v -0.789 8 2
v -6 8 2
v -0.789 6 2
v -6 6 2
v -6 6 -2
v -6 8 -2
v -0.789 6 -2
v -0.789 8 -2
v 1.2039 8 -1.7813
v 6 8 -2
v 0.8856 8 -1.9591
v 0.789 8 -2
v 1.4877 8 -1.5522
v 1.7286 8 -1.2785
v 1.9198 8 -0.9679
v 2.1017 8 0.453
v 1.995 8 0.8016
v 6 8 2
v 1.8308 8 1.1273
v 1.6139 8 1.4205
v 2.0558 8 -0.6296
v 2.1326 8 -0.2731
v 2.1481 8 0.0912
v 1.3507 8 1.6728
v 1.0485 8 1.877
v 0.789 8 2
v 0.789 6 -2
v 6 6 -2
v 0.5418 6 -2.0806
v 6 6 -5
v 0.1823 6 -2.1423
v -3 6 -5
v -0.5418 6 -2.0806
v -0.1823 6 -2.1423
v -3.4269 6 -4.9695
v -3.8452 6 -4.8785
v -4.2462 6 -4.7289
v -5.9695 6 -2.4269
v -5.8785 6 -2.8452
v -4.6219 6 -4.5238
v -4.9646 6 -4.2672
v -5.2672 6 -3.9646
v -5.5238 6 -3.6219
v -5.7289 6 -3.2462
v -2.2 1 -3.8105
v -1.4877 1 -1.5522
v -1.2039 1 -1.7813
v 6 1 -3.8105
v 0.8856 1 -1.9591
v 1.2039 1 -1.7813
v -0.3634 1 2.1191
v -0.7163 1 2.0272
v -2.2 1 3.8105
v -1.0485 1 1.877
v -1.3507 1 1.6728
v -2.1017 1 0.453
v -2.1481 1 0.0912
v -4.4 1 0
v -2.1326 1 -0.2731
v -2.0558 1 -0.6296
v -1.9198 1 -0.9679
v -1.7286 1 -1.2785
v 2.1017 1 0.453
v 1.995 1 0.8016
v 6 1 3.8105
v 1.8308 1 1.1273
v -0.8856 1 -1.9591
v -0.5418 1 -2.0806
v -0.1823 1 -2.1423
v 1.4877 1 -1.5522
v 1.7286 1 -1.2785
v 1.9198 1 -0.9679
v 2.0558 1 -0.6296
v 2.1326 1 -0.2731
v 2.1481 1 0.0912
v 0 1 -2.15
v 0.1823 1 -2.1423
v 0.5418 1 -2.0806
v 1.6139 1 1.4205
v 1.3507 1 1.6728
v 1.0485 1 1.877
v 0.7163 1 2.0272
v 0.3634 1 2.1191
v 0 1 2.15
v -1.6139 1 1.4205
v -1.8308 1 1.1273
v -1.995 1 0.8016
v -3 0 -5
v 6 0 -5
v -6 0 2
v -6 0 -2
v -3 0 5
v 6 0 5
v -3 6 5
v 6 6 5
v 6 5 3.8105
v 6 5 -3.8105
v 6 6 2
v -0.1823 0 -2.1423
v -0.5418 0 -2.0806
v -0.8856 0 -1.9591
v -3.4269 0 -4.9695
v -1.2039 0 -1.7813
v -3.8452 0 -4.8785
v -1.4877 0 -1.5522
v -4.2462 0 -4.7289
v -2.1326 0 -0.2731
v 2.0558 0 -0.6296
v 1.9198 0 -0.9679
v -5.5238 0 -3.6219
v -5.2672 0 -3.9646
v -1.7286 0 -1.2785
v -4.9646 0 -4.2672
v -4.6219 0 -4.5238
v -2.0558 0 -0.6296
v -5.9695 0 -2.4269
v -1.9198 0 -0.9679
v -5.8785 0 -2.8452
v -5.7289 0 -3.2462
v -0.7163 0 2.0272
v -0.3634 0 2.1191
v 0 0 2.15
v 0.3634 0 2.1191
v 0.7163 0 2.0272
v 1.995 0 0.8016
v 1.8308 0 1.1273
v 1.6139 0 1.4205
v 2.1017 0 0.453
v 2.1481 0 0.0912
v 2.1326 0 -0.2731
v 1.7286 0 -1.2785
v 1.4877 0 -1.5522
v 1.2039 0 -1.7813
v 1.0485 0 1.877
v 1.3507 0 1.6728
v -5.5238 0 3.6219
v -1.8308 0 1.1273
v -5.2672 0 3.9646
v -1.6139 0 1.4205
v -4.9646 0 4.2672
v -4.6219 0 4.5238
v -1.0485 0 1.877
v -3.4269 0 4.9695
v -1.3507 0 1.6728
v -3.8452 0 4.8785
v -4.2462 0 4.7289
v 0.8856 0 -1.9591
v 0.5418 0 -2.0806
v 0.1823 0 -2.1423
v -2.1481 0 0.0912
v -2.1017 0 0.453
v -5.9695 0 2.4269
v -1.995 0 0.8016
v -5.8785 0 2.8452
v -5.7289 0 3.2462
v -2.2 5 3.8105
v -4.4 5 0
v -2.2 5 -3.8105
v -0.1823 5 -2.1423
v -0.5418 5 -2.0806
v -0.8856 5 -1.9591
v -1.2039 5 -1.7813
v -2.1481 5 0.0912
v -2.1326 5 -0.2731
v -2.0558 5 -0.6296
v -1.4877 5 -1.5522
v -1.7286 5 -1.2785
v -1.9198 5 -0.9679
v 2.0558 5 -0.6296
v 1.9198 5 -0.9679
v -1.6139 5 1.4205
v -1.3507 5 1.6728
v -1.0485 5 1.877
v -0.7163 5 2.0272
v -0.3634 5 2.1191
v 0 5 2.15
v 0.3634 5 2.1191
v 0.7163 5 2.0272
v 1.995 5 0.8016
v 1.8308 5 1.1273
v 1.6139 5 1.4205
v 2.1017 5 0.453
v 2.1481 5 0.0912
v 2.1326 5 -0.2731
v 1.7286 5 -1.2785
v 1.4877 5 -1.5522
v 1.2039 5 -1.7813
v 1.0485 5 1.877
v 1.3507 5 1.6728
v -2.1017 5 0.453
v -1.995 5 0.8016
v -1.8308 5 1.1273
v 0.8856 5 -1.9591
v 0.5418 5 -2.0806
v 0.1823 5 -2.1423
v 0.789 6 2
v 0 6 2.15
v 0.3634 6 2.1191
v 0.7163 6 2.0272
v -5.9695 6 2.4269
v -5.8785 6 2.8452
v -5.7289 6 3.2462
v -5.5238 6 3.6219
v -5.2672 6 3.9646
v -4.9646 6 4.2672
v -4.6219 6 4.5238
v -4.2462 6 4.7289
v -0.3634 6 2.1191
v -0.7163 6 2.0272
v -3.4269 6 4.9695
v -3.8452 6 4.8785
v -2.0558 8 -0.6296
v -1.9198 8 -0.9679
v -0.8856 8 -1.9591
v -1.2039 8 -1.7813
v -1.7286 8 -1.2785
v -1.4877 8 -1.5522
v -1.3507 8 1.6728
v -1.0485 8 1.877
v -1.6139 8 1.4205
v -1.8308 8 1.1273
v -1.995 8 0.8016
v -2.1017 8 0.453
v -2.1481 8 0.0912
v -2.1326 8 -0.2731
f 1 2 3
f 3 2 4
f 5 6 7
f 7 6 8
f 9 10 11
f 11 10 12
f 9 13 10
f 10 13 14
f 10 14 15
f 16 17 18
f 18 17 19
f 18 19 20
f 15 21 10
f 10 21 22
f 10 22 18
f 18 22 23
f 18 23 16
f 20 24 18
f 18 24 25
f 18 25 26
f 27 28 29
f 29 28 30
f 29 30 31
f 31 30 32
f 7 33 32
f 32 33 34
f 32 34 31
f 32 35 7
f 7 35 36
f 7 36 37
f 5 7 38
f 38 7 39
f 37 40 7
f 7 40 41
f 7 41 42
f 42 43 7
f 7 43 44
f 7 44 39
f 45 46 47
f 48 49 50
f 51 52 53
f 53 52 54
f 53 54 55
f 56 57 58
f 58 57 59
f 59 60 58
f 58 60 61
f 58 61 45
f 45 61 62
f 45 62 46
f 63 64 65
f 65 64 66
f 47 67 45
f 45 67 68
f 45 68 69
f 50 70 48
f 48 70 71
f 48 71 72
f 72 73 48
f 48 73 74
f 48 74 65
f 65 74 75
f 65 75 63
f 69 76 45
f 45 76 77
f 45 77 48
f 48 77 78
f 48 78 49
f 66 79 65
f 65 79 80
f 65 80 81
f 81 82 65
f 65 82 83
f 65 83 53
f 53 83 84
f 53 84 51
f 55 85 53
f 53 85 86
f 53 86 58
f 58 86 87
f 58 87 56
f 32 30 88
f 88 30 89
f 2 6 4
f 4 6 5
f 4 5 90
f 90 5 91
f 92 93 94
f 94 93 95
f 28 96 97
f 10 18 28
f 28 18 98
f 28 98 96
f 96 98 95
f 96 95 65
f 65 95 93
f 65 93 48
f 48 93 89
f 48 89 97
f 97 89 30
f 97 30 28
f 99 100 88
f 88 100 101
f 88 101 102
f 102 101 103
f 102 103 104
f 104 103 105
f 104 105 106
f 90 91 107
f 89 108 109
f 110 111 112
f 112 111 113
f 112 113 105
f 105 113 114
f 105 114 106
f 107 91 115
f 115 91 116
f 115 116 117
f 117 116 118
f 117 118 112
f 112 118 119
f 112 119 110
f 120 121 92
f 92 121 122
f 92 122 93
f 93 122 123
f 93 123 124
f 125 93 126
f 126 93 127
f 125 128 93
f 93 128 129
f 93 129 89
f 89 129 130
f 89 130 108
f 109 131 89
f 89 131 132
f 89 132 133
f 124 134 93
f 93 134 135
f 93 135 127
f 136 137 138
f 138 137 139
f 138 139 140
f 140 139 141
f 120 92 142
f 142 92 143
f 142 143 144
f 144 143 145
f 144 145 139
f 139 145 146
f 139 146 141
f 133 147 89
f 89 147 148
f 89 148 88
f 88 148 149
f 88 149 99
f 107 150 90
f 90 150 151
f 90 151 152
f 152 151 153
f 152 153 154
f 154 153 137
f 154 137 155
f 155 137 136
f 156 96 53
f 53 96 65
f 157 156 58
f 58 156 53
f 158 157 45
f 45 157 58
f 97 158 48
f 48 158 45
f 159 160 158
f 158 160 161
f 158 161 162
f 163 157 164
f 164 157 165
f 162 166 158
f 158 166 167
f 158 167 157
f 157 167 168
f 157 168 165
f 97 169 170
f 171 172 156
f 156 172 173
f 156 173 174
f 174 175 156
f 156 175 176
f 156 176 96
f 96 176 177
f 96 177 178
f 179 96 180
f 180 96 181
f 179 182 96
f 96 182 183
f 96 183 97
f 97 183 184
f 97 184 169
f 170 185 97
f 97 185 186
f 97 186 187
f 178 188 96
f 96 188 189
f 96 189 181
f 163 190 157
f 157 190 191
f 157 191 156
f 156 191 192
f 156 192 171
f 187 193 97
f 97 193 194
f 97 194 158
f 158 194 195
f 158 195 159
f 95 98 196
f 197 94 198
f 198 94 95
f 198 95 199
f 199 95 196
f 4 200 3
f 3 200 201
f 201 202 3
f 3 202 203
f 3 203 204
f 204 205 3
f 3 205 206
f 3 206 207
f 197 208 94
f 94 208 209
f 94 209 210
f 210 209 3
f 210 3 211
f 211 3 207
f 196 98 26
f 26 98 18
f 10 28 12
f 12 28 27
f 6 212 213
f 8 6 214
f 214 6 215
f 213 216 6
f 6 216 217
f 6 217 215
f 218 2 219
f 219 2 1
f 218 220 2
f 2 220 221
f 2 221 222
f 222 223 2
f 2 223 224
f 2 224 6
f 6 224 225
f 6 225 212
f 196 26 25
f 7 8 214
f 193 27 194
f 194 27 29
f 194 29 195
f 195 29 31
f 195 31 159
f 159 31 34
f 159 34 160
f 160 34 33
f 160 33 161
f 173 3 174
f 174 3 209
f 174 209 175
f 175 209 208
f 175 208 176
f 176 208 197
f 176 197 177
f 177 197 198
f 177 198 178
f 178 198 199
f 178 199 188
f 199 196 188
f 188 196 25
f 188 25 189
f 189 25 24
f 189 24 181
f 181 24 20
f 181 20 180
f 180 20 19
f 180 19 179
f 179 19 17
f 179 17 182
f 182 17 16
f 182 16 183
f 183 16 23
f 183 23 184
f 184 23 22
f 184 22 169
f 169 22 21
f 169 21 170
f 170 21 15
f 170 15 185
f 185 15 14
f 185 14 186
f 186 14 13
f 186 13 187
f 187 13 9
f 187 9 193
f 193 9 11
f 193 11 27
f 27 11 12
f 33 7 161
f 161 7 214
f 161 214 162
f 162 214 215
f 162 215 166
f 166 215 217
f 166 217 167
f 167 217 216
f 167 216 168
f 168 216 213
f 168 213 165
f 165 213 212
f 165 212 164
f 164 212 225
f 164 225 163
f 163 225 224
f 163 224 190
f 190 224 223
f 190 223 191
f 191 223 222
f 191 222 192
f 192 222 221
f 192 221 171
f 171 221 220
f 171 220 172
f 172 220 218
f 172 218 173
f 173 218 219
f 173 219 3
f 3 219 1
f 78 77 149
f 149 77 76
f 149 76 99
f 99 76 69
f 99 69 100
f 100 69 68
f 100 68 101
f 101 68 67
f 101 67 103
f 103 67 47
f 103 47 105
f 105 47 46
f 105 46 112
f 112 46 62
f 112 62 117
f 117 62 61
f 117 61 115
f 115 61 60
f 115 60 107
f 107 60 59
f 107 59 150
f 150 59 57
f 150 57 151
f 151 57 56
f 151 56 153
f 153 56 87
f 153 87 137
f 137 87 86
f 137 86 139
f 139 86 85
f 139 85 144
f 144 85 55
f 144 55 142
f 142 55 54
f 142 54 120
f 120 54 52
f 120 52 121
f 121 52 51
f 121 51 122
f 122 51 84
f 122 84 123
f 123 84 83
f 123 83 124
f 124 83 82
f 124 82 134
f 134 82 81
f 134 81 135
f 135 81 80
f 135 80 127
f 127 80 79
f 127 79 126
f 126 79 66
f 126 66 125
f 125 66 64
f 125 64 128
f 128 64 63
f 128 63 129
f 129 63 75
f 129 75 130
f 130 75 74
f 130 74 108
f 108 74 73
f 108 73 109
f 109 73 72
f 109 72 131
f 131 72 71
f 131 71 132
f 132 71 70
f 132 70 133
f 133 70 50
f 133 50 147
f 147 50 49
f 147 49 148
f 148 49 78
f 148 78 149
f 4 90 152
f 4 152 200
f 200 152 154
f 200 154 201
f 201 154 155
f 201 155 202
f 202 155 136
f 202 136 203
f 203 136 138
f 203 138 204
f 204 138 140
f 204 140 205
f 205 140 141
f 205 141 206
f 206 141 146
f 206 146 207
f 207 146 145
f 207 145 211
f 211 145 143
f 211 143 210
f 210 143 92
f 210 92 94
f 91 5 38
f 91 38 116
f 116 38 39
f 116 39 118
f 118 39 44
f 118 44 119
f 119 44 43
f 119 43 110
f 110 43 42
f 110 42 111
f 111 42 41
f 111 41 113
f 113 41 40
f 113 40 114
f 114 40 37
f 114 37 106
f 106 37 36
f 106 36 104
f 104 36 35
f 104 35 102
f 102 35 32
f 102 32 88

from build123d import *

# Parameters (mm, degrees)
SKETCH1_W               = 12
SKETCH1_H               = 10
BOSS_EXTRUDE1_DEPTH     = 1
BOSS_EXTRUDE2_DEPTH     = 4
SKETCH3_W               = 12
SKETCH3_H               = 10
BOSS_EXTRUDE3_DEPTH     = 1
SKETCH5_W               = 12
SKETCH5_H               = 4
BOSS_EXTRUDE4_DEPTH     = 2
SKETCH4_R               = 2.15
CUT_EXTRUDE1_DEPTH      = 10.848857802
CUT_EXTRUDE1_DEPTH_BACK = 10.848857802
FILLET1_R               = 3


with BuildPart() as part:
    # Sketch1 → Boss-Extrude1 (new body)
    with BuildSketch(Plane(origin=(0, 0, 0), x_dir=(1, 0, 0), z_dir=(0, 1, 0))):
        Rectangle(SKETCH1_W, SKETCH1_H)
    extrude(amount=BOSS_EXTRUDE1_DEPTH)

    # Sketch2 → Boss-Extrude2 (add)
    with BuildSketch(Plane(origin=(0, 1, 0), x_dir=(1, 0, 0), z_dir=(0, 1, 0))):
        Polygon((2.2, -3.810511777), (6, -3.810511777), (6, -5), (-6, -5), (-6, 5), (6, 5), (6, 3.810511777), (2.2, 3.810511777), (-2.2, 3.810511777), (-4.4, 0), (-2.2, -3.810511777), align=None)
    extrude(amount=BOSS_EXTRUDE2_DEPTH)

    # Sketch3 → Boss-Extrude3 (add)
    with BuildSketch(Plane(origin=(0, 5, 0), x_dir=(1, 0, 0), z_dir=(0, 1, 0))):
        Rectangle(SKETCH3_W, SKETCH3_H)
    extrude(amount=BOSS_EXTRUDE3_DEPTH)

    # Sketch5 → Boss-Extrude4 (add)
    with BuildSketch(Plane(origin=(0, 6, 0), x_dir=(1, 0, 0), z_dir=(0, 1, 0))):
        Rectangle(SKETCH5_W, SKETCH5_H)
    extrude(amount=BOSS_EXTRUDE4_DEPTH)

    # Sketch4 → Cut-Extrude1 (cut, two sides)
    with BuildSketch(Plane(origin=(0, 6, 0), x_dir=(1, 0, 0), z_dir=(0, 1, 0))) as cut_extrude1_sk:
        with Locations(Location((0, 0, 0), (0, 0, 270))):
            Circle(SKETCH4_R)
    extrude(amount=CUT_EXTRUDE1_DEPTH, mode=Mode.SUBTRACT)
    extrude(cut_extrude1_sk.sketch, amount=-CUT_EXTRUDE1_DEPTH_BACK, mode=Mode.SUBTRACT)

    # Fillet1
    fillet1_edges = [part.edges().sort_by_distance(p)[0] for p in [
        (-6, 3, 5),
        (-6, 3, -5),
    ]]
    fillet(fillet1_edges, radius=FILLET1_R)


solid = part.part
